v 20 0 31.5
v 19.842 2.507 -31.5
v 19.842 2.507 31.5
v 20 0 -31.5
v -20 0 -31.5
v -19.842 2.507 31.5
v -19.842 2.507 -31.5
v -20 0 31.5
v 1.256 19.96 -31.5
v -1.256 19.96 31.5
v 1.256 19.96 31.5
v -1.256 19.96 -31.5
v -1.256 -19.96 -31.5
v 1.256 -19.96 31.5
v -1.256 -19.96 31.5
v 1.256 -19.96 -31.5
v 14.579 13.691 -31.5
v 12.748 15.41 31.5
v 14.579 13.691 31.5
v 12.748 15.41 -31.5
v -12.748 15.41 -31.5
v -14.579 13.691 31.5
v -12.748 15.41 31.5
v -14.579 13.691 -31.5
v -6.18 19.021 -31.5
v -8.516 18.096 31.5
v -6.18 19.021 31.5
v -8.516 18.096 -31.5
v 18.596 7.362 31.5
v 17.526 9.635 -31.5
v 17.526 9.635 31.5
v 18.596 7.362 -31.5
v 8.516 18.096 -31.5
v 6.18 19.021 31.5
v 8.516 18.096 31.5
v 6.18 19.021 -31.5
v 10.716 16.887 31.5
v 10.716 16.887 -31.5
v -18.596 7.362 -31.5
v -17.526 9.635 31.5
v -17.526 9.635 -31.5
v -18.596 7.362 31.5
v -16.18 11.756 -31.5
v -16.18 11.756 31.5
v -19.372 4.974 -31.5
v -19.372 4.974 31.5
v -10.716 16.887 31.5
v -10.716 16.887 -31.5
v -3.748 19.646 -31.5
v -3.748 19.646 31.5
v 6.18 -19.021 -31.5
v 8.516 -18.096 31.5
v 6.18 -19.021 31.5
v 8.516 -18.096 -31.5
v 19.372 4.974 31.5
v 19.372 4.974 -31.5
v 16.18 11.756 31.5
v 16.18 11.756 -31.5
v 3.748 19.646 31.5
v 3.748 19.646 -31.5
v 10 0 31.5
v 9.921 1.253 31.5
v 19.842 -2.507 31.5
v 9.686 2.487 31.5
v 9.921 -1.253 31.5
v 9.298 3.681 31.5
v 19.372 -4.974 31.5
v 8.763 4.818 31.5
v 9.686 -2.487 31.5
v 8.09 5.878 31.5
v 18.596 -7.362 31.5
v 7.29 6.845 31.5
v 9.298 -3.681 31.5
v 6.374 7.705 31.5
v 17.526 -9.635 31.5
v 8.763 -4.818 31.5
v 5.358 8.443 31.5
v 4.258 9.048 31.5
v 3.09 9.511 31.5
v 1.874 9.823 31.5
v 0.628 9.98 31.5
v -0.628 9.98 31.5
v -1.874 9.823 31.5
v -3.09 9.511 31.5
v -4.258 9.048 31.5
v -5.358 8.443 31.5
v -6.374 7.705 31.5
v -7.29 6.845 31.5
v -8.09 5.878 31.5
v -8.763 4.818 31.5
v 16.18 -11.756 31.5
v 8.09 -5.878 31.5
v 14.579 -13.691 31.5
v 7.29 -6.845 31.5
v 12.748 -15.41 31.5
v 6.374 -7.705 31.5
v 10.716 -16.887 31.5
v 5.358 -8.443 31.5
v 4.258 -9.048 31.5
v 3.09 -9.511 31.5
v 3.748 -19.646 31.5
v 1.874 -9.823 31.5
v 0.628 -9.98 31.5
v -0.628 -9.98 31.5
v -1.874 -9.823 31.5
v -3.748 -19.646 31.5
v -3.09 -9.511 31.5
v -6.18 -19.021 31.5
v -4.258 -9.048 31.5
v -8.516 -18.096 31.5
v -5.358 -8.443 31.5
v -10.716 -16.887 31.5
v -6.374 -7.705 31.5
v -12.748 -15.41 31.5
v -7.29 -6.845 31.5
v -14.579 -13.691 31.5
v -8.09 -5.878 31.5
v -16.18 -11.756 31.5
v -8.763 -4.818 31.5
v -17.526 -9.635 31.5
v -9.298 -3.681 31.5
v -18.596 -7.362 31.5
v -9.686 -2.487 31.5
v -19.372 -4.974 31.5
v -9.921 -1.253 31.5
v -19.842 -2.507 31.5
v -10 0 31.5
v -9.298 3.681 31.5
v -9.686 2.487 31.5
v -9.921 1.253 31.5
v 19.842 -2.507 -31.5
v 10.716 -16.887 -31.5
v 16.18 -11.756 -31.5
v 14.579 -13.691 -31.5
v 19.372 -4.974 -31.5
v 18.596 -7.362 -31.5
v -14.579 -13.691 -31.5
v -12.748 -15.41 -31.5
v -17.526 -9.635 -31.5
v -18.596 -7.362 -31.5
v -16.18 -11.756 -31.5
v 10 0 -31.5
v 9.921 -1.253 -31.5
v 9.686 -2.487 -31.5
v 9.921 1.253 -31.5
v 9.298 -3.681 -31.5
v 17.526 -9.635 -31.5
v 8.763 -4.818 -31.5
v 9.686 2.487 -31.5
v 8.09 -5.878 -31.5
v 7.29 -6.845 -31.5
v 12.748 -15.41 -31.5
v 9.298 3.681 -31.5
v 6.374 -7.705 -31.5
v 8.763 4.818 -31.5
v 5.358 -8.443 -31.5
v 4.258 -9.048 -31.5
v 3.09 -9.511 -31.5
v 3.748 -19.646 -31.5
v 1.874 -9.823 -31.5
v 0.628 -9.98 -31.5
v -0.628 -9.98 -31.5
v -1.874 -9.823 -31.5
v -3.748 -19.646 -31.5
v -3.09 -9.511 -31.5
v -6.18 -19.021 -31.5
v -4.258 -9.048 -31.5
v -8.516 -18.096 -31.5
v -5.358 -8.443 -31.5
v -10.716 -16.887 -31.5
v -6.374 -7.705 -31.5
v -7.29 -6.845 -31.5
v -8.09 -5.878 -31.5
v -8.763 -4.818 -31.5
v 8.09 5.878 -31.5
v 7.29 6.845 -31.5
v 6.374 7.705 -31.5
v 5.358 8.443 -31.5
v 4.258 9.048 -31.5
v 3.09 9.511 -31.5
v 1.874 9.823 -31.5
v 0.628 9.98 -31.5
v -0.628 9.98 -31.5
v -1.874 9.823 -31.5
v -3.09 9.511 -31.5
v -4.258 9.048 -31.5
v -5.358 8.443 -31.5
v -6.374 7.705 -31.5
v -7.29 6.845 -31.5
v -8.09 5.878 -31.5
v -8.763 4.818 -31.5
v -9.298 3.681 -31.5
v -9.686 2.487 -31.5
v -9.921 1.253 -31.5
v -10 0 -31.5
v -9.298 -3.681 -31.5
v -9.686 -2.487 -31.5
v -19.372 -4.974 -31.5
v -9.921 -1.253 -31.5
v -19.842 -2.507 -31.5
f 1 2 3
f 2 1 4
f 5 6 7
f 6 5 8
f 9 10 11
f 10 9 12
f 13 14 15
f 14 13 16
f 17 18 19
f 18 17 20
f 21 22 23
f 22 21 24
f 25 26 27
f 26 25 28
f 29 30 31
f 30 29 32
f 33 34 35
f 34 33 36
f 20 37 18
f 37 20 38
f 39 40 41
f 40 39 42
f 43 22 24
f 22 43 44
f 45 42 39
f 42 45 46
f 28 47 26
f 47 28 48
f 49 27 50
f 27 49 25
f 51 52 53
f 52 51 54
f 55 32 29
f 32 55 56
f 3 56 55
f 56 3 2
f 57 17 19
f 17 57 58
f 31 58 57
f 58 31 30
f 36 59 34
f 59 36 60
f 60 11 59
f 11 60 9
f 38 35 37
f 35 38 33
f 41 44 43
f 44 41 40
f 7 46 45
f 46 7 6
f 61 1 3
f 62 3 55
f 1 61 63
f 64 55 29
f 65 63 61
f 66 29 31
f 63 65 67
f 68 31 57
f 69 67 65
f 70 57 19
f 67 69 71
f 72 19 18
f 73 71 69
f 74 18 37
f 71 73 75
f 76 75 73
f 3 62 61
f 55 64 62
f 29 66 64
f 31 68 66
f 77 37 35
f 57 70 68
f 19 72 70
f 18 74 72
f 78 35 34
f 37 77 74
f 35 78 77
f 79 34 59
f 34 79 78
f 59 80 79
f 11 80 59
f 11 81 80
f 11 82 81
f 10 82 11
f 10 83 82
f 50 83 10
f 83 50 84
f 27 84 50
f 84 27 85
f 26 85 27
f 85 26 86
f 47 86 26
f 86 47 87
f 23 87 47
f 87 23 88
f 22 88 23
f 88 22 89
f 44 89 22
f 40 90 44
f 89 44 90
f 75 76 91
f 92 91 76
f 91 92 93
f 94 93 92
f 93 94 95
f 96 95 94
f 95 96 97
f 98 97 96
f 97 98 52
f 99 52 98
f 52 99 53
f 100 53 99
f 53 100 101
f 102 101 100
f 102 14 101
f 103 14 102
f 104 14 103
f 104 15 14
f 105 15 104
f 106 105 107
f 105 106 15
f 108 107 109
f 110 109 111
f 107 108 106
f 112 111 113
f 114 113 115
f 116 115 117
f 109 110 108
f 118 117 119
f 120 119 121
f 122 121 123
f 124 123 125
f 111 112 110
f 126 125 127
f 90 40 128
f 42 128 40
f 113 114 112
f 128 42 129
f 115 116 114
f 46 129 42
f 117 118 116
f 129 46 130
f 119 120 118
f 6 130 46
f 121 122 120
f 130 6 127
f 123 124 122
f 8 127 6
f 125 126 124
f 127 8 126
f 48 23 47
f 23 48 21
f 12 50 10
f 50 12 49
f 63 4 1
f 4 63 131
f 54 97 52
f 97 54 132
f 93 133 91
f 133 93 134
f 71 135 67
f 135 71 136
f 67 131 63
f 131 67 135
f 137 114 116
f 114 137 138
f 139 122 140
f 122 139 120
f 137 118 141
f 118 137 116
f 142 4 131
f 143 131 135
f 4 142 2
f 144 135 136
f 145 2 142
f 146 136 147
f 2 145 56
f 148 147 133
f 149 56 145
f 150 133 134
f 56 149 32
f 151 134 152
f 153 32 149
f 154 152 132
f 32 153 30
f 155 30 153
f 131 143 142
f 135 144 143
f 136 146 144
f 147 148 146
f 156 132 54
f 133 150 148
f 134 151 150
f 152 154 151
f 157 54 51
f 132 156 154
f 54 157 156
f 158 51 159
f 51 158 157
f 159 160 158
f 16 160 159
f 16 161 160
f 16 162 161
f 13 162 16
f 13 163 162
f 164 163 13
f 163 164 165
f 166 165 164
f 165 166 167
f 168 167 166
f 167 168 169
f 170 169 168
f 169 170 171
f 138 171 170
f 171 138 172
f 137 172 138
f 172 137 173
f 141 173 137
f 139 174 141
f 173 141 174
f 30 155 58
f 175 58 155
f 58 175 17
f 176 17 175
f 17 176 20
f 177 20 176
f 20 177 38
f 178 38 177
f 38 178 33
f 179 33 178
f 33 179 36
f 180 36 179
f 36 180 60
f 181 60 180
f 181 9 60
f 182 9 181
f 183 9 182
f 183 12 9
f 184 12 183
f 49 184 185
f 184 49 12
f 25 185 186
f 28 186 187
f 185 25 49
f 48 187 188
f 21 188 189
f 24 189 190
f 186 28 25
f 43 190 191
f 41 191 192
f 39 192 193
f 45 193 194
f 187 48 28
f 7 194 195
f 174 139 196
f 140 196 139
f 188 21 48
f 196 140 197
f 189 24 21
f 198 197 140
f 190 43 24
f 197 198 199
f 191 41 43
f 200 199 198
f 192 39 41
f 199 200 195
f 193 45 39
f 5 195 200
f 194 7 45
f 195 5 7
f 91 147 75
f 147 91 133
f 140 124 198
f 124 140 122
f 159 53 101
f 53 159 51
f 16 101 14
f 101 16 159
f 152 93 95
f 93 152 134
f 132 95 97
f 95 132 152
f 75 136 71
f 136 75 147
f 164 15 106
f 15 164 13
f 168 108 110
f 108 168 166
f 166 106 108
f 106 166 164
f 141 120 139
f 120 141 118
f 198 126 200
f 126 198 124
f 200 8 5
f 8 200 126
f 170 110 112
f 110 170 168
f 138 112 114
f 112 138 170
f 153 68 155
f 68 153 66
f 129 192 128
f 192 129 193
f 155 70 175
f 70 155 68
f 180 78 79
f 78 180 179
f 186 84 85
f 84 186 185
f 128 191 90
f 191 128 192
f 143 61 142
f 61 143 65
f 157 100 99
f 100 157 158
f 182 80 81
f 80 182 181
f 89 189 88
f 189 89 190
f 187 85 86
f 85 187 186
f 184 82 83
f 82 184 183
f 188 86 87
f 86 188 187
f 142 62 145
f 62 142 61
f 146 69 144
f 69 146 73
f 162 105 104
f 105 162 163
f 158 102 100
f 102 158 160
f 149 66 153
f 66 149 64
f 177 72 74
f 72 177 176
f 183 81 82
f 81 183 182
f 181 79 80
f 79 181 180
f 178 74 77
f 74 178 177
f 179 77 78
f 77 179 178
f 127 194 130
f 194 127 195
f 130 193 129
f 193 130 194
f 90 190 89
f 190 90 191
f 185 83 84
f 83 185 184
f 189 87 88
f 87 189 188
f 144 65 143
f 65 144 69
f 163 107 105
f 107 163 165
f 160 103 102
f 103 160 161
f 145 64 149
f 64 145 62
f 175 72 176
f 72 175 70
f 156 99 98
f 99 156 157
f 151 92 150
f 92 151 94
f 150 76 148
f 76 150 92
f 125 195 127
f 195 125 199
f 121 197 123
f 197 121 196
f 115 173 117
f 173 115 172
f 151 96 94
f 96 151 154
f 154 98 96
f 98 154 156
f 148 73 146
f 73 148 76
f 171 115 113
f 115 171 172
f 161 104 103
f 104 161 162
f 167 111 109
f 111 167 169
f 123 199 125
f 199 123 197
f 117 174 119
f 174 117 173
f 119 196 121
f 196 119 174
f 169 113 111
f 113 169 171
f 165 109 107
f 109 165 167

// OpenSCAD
$fn = 50;


difference() {
	union() {
		translate(v = [0, 0, -31.5000000000]) {
			cylinder(h = 63, r = 20.0000000000);
		}
	}
	union() {
		translate(v = [0, 0, -100.0000000000]) {
			cylinder(h = 200, r = 10);
		}
	}
}
